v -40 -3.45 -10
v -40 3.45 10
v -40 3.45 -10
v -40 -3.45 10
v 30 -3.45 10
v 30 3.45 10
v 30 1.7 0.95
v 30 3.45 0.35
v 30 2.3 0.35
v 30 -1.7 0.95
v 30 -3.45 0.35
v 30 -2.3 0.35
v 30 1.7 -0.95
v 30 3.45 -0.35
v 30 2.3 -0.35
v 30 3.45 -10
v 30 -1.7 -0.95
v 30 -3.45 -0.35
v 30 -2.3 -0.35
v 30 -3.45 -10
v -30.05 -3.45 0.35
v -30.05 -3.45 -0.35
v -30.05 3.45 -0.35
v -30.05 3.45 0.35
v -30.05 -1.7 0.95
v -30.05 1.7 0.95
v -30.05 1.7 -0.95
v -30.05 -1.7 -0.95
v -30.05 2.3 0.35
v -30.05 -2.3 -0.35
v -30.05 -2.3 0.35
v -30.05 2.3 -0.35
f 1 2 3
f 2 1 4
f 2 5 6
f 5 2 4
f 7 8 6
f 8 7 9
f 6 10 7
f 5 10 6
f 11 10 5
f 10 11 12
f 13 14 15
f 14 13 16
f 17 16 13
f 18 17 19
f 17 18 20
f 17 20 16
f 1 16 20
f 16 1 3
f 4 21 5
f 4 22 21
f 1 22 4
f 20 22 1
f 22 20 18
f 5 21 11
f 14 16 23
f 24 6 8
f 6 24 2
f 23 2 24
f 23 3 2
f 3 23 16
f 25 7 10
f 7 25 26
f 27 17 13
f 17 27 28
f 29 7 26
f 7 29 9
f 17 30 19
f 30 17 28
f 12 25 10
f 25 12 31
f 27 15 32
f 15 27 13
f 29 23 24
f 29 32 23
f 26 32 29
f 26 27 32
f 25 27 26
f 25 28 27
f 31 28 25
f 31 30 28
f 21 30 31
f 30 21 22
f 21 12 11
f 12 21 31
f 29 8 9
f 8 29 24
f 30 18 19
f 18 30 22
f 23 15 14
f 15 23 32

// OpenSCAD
hole_spacing=6.9;
diode_width=3.2;
diode_d=1.7;
wire_d = .5;

slop=.2;
thickness=20;
l_inner=60;

difference(){
	translate([-thickness/4,0,0])
		cube([l_inner+thickness/2,hole_spacing,thickness],center=true);
	//diode
	hull(){
		cube([l_inner+.1,diode_width+slop,diode_d+slop],center=true);
		cube([l_inner+.1,diode_width+diode_d+slop,slop],center=true);
	}
	//wire
	cube([l_inner+.1,hole_spacing+.1,wire_d+slop],center=true);
}
